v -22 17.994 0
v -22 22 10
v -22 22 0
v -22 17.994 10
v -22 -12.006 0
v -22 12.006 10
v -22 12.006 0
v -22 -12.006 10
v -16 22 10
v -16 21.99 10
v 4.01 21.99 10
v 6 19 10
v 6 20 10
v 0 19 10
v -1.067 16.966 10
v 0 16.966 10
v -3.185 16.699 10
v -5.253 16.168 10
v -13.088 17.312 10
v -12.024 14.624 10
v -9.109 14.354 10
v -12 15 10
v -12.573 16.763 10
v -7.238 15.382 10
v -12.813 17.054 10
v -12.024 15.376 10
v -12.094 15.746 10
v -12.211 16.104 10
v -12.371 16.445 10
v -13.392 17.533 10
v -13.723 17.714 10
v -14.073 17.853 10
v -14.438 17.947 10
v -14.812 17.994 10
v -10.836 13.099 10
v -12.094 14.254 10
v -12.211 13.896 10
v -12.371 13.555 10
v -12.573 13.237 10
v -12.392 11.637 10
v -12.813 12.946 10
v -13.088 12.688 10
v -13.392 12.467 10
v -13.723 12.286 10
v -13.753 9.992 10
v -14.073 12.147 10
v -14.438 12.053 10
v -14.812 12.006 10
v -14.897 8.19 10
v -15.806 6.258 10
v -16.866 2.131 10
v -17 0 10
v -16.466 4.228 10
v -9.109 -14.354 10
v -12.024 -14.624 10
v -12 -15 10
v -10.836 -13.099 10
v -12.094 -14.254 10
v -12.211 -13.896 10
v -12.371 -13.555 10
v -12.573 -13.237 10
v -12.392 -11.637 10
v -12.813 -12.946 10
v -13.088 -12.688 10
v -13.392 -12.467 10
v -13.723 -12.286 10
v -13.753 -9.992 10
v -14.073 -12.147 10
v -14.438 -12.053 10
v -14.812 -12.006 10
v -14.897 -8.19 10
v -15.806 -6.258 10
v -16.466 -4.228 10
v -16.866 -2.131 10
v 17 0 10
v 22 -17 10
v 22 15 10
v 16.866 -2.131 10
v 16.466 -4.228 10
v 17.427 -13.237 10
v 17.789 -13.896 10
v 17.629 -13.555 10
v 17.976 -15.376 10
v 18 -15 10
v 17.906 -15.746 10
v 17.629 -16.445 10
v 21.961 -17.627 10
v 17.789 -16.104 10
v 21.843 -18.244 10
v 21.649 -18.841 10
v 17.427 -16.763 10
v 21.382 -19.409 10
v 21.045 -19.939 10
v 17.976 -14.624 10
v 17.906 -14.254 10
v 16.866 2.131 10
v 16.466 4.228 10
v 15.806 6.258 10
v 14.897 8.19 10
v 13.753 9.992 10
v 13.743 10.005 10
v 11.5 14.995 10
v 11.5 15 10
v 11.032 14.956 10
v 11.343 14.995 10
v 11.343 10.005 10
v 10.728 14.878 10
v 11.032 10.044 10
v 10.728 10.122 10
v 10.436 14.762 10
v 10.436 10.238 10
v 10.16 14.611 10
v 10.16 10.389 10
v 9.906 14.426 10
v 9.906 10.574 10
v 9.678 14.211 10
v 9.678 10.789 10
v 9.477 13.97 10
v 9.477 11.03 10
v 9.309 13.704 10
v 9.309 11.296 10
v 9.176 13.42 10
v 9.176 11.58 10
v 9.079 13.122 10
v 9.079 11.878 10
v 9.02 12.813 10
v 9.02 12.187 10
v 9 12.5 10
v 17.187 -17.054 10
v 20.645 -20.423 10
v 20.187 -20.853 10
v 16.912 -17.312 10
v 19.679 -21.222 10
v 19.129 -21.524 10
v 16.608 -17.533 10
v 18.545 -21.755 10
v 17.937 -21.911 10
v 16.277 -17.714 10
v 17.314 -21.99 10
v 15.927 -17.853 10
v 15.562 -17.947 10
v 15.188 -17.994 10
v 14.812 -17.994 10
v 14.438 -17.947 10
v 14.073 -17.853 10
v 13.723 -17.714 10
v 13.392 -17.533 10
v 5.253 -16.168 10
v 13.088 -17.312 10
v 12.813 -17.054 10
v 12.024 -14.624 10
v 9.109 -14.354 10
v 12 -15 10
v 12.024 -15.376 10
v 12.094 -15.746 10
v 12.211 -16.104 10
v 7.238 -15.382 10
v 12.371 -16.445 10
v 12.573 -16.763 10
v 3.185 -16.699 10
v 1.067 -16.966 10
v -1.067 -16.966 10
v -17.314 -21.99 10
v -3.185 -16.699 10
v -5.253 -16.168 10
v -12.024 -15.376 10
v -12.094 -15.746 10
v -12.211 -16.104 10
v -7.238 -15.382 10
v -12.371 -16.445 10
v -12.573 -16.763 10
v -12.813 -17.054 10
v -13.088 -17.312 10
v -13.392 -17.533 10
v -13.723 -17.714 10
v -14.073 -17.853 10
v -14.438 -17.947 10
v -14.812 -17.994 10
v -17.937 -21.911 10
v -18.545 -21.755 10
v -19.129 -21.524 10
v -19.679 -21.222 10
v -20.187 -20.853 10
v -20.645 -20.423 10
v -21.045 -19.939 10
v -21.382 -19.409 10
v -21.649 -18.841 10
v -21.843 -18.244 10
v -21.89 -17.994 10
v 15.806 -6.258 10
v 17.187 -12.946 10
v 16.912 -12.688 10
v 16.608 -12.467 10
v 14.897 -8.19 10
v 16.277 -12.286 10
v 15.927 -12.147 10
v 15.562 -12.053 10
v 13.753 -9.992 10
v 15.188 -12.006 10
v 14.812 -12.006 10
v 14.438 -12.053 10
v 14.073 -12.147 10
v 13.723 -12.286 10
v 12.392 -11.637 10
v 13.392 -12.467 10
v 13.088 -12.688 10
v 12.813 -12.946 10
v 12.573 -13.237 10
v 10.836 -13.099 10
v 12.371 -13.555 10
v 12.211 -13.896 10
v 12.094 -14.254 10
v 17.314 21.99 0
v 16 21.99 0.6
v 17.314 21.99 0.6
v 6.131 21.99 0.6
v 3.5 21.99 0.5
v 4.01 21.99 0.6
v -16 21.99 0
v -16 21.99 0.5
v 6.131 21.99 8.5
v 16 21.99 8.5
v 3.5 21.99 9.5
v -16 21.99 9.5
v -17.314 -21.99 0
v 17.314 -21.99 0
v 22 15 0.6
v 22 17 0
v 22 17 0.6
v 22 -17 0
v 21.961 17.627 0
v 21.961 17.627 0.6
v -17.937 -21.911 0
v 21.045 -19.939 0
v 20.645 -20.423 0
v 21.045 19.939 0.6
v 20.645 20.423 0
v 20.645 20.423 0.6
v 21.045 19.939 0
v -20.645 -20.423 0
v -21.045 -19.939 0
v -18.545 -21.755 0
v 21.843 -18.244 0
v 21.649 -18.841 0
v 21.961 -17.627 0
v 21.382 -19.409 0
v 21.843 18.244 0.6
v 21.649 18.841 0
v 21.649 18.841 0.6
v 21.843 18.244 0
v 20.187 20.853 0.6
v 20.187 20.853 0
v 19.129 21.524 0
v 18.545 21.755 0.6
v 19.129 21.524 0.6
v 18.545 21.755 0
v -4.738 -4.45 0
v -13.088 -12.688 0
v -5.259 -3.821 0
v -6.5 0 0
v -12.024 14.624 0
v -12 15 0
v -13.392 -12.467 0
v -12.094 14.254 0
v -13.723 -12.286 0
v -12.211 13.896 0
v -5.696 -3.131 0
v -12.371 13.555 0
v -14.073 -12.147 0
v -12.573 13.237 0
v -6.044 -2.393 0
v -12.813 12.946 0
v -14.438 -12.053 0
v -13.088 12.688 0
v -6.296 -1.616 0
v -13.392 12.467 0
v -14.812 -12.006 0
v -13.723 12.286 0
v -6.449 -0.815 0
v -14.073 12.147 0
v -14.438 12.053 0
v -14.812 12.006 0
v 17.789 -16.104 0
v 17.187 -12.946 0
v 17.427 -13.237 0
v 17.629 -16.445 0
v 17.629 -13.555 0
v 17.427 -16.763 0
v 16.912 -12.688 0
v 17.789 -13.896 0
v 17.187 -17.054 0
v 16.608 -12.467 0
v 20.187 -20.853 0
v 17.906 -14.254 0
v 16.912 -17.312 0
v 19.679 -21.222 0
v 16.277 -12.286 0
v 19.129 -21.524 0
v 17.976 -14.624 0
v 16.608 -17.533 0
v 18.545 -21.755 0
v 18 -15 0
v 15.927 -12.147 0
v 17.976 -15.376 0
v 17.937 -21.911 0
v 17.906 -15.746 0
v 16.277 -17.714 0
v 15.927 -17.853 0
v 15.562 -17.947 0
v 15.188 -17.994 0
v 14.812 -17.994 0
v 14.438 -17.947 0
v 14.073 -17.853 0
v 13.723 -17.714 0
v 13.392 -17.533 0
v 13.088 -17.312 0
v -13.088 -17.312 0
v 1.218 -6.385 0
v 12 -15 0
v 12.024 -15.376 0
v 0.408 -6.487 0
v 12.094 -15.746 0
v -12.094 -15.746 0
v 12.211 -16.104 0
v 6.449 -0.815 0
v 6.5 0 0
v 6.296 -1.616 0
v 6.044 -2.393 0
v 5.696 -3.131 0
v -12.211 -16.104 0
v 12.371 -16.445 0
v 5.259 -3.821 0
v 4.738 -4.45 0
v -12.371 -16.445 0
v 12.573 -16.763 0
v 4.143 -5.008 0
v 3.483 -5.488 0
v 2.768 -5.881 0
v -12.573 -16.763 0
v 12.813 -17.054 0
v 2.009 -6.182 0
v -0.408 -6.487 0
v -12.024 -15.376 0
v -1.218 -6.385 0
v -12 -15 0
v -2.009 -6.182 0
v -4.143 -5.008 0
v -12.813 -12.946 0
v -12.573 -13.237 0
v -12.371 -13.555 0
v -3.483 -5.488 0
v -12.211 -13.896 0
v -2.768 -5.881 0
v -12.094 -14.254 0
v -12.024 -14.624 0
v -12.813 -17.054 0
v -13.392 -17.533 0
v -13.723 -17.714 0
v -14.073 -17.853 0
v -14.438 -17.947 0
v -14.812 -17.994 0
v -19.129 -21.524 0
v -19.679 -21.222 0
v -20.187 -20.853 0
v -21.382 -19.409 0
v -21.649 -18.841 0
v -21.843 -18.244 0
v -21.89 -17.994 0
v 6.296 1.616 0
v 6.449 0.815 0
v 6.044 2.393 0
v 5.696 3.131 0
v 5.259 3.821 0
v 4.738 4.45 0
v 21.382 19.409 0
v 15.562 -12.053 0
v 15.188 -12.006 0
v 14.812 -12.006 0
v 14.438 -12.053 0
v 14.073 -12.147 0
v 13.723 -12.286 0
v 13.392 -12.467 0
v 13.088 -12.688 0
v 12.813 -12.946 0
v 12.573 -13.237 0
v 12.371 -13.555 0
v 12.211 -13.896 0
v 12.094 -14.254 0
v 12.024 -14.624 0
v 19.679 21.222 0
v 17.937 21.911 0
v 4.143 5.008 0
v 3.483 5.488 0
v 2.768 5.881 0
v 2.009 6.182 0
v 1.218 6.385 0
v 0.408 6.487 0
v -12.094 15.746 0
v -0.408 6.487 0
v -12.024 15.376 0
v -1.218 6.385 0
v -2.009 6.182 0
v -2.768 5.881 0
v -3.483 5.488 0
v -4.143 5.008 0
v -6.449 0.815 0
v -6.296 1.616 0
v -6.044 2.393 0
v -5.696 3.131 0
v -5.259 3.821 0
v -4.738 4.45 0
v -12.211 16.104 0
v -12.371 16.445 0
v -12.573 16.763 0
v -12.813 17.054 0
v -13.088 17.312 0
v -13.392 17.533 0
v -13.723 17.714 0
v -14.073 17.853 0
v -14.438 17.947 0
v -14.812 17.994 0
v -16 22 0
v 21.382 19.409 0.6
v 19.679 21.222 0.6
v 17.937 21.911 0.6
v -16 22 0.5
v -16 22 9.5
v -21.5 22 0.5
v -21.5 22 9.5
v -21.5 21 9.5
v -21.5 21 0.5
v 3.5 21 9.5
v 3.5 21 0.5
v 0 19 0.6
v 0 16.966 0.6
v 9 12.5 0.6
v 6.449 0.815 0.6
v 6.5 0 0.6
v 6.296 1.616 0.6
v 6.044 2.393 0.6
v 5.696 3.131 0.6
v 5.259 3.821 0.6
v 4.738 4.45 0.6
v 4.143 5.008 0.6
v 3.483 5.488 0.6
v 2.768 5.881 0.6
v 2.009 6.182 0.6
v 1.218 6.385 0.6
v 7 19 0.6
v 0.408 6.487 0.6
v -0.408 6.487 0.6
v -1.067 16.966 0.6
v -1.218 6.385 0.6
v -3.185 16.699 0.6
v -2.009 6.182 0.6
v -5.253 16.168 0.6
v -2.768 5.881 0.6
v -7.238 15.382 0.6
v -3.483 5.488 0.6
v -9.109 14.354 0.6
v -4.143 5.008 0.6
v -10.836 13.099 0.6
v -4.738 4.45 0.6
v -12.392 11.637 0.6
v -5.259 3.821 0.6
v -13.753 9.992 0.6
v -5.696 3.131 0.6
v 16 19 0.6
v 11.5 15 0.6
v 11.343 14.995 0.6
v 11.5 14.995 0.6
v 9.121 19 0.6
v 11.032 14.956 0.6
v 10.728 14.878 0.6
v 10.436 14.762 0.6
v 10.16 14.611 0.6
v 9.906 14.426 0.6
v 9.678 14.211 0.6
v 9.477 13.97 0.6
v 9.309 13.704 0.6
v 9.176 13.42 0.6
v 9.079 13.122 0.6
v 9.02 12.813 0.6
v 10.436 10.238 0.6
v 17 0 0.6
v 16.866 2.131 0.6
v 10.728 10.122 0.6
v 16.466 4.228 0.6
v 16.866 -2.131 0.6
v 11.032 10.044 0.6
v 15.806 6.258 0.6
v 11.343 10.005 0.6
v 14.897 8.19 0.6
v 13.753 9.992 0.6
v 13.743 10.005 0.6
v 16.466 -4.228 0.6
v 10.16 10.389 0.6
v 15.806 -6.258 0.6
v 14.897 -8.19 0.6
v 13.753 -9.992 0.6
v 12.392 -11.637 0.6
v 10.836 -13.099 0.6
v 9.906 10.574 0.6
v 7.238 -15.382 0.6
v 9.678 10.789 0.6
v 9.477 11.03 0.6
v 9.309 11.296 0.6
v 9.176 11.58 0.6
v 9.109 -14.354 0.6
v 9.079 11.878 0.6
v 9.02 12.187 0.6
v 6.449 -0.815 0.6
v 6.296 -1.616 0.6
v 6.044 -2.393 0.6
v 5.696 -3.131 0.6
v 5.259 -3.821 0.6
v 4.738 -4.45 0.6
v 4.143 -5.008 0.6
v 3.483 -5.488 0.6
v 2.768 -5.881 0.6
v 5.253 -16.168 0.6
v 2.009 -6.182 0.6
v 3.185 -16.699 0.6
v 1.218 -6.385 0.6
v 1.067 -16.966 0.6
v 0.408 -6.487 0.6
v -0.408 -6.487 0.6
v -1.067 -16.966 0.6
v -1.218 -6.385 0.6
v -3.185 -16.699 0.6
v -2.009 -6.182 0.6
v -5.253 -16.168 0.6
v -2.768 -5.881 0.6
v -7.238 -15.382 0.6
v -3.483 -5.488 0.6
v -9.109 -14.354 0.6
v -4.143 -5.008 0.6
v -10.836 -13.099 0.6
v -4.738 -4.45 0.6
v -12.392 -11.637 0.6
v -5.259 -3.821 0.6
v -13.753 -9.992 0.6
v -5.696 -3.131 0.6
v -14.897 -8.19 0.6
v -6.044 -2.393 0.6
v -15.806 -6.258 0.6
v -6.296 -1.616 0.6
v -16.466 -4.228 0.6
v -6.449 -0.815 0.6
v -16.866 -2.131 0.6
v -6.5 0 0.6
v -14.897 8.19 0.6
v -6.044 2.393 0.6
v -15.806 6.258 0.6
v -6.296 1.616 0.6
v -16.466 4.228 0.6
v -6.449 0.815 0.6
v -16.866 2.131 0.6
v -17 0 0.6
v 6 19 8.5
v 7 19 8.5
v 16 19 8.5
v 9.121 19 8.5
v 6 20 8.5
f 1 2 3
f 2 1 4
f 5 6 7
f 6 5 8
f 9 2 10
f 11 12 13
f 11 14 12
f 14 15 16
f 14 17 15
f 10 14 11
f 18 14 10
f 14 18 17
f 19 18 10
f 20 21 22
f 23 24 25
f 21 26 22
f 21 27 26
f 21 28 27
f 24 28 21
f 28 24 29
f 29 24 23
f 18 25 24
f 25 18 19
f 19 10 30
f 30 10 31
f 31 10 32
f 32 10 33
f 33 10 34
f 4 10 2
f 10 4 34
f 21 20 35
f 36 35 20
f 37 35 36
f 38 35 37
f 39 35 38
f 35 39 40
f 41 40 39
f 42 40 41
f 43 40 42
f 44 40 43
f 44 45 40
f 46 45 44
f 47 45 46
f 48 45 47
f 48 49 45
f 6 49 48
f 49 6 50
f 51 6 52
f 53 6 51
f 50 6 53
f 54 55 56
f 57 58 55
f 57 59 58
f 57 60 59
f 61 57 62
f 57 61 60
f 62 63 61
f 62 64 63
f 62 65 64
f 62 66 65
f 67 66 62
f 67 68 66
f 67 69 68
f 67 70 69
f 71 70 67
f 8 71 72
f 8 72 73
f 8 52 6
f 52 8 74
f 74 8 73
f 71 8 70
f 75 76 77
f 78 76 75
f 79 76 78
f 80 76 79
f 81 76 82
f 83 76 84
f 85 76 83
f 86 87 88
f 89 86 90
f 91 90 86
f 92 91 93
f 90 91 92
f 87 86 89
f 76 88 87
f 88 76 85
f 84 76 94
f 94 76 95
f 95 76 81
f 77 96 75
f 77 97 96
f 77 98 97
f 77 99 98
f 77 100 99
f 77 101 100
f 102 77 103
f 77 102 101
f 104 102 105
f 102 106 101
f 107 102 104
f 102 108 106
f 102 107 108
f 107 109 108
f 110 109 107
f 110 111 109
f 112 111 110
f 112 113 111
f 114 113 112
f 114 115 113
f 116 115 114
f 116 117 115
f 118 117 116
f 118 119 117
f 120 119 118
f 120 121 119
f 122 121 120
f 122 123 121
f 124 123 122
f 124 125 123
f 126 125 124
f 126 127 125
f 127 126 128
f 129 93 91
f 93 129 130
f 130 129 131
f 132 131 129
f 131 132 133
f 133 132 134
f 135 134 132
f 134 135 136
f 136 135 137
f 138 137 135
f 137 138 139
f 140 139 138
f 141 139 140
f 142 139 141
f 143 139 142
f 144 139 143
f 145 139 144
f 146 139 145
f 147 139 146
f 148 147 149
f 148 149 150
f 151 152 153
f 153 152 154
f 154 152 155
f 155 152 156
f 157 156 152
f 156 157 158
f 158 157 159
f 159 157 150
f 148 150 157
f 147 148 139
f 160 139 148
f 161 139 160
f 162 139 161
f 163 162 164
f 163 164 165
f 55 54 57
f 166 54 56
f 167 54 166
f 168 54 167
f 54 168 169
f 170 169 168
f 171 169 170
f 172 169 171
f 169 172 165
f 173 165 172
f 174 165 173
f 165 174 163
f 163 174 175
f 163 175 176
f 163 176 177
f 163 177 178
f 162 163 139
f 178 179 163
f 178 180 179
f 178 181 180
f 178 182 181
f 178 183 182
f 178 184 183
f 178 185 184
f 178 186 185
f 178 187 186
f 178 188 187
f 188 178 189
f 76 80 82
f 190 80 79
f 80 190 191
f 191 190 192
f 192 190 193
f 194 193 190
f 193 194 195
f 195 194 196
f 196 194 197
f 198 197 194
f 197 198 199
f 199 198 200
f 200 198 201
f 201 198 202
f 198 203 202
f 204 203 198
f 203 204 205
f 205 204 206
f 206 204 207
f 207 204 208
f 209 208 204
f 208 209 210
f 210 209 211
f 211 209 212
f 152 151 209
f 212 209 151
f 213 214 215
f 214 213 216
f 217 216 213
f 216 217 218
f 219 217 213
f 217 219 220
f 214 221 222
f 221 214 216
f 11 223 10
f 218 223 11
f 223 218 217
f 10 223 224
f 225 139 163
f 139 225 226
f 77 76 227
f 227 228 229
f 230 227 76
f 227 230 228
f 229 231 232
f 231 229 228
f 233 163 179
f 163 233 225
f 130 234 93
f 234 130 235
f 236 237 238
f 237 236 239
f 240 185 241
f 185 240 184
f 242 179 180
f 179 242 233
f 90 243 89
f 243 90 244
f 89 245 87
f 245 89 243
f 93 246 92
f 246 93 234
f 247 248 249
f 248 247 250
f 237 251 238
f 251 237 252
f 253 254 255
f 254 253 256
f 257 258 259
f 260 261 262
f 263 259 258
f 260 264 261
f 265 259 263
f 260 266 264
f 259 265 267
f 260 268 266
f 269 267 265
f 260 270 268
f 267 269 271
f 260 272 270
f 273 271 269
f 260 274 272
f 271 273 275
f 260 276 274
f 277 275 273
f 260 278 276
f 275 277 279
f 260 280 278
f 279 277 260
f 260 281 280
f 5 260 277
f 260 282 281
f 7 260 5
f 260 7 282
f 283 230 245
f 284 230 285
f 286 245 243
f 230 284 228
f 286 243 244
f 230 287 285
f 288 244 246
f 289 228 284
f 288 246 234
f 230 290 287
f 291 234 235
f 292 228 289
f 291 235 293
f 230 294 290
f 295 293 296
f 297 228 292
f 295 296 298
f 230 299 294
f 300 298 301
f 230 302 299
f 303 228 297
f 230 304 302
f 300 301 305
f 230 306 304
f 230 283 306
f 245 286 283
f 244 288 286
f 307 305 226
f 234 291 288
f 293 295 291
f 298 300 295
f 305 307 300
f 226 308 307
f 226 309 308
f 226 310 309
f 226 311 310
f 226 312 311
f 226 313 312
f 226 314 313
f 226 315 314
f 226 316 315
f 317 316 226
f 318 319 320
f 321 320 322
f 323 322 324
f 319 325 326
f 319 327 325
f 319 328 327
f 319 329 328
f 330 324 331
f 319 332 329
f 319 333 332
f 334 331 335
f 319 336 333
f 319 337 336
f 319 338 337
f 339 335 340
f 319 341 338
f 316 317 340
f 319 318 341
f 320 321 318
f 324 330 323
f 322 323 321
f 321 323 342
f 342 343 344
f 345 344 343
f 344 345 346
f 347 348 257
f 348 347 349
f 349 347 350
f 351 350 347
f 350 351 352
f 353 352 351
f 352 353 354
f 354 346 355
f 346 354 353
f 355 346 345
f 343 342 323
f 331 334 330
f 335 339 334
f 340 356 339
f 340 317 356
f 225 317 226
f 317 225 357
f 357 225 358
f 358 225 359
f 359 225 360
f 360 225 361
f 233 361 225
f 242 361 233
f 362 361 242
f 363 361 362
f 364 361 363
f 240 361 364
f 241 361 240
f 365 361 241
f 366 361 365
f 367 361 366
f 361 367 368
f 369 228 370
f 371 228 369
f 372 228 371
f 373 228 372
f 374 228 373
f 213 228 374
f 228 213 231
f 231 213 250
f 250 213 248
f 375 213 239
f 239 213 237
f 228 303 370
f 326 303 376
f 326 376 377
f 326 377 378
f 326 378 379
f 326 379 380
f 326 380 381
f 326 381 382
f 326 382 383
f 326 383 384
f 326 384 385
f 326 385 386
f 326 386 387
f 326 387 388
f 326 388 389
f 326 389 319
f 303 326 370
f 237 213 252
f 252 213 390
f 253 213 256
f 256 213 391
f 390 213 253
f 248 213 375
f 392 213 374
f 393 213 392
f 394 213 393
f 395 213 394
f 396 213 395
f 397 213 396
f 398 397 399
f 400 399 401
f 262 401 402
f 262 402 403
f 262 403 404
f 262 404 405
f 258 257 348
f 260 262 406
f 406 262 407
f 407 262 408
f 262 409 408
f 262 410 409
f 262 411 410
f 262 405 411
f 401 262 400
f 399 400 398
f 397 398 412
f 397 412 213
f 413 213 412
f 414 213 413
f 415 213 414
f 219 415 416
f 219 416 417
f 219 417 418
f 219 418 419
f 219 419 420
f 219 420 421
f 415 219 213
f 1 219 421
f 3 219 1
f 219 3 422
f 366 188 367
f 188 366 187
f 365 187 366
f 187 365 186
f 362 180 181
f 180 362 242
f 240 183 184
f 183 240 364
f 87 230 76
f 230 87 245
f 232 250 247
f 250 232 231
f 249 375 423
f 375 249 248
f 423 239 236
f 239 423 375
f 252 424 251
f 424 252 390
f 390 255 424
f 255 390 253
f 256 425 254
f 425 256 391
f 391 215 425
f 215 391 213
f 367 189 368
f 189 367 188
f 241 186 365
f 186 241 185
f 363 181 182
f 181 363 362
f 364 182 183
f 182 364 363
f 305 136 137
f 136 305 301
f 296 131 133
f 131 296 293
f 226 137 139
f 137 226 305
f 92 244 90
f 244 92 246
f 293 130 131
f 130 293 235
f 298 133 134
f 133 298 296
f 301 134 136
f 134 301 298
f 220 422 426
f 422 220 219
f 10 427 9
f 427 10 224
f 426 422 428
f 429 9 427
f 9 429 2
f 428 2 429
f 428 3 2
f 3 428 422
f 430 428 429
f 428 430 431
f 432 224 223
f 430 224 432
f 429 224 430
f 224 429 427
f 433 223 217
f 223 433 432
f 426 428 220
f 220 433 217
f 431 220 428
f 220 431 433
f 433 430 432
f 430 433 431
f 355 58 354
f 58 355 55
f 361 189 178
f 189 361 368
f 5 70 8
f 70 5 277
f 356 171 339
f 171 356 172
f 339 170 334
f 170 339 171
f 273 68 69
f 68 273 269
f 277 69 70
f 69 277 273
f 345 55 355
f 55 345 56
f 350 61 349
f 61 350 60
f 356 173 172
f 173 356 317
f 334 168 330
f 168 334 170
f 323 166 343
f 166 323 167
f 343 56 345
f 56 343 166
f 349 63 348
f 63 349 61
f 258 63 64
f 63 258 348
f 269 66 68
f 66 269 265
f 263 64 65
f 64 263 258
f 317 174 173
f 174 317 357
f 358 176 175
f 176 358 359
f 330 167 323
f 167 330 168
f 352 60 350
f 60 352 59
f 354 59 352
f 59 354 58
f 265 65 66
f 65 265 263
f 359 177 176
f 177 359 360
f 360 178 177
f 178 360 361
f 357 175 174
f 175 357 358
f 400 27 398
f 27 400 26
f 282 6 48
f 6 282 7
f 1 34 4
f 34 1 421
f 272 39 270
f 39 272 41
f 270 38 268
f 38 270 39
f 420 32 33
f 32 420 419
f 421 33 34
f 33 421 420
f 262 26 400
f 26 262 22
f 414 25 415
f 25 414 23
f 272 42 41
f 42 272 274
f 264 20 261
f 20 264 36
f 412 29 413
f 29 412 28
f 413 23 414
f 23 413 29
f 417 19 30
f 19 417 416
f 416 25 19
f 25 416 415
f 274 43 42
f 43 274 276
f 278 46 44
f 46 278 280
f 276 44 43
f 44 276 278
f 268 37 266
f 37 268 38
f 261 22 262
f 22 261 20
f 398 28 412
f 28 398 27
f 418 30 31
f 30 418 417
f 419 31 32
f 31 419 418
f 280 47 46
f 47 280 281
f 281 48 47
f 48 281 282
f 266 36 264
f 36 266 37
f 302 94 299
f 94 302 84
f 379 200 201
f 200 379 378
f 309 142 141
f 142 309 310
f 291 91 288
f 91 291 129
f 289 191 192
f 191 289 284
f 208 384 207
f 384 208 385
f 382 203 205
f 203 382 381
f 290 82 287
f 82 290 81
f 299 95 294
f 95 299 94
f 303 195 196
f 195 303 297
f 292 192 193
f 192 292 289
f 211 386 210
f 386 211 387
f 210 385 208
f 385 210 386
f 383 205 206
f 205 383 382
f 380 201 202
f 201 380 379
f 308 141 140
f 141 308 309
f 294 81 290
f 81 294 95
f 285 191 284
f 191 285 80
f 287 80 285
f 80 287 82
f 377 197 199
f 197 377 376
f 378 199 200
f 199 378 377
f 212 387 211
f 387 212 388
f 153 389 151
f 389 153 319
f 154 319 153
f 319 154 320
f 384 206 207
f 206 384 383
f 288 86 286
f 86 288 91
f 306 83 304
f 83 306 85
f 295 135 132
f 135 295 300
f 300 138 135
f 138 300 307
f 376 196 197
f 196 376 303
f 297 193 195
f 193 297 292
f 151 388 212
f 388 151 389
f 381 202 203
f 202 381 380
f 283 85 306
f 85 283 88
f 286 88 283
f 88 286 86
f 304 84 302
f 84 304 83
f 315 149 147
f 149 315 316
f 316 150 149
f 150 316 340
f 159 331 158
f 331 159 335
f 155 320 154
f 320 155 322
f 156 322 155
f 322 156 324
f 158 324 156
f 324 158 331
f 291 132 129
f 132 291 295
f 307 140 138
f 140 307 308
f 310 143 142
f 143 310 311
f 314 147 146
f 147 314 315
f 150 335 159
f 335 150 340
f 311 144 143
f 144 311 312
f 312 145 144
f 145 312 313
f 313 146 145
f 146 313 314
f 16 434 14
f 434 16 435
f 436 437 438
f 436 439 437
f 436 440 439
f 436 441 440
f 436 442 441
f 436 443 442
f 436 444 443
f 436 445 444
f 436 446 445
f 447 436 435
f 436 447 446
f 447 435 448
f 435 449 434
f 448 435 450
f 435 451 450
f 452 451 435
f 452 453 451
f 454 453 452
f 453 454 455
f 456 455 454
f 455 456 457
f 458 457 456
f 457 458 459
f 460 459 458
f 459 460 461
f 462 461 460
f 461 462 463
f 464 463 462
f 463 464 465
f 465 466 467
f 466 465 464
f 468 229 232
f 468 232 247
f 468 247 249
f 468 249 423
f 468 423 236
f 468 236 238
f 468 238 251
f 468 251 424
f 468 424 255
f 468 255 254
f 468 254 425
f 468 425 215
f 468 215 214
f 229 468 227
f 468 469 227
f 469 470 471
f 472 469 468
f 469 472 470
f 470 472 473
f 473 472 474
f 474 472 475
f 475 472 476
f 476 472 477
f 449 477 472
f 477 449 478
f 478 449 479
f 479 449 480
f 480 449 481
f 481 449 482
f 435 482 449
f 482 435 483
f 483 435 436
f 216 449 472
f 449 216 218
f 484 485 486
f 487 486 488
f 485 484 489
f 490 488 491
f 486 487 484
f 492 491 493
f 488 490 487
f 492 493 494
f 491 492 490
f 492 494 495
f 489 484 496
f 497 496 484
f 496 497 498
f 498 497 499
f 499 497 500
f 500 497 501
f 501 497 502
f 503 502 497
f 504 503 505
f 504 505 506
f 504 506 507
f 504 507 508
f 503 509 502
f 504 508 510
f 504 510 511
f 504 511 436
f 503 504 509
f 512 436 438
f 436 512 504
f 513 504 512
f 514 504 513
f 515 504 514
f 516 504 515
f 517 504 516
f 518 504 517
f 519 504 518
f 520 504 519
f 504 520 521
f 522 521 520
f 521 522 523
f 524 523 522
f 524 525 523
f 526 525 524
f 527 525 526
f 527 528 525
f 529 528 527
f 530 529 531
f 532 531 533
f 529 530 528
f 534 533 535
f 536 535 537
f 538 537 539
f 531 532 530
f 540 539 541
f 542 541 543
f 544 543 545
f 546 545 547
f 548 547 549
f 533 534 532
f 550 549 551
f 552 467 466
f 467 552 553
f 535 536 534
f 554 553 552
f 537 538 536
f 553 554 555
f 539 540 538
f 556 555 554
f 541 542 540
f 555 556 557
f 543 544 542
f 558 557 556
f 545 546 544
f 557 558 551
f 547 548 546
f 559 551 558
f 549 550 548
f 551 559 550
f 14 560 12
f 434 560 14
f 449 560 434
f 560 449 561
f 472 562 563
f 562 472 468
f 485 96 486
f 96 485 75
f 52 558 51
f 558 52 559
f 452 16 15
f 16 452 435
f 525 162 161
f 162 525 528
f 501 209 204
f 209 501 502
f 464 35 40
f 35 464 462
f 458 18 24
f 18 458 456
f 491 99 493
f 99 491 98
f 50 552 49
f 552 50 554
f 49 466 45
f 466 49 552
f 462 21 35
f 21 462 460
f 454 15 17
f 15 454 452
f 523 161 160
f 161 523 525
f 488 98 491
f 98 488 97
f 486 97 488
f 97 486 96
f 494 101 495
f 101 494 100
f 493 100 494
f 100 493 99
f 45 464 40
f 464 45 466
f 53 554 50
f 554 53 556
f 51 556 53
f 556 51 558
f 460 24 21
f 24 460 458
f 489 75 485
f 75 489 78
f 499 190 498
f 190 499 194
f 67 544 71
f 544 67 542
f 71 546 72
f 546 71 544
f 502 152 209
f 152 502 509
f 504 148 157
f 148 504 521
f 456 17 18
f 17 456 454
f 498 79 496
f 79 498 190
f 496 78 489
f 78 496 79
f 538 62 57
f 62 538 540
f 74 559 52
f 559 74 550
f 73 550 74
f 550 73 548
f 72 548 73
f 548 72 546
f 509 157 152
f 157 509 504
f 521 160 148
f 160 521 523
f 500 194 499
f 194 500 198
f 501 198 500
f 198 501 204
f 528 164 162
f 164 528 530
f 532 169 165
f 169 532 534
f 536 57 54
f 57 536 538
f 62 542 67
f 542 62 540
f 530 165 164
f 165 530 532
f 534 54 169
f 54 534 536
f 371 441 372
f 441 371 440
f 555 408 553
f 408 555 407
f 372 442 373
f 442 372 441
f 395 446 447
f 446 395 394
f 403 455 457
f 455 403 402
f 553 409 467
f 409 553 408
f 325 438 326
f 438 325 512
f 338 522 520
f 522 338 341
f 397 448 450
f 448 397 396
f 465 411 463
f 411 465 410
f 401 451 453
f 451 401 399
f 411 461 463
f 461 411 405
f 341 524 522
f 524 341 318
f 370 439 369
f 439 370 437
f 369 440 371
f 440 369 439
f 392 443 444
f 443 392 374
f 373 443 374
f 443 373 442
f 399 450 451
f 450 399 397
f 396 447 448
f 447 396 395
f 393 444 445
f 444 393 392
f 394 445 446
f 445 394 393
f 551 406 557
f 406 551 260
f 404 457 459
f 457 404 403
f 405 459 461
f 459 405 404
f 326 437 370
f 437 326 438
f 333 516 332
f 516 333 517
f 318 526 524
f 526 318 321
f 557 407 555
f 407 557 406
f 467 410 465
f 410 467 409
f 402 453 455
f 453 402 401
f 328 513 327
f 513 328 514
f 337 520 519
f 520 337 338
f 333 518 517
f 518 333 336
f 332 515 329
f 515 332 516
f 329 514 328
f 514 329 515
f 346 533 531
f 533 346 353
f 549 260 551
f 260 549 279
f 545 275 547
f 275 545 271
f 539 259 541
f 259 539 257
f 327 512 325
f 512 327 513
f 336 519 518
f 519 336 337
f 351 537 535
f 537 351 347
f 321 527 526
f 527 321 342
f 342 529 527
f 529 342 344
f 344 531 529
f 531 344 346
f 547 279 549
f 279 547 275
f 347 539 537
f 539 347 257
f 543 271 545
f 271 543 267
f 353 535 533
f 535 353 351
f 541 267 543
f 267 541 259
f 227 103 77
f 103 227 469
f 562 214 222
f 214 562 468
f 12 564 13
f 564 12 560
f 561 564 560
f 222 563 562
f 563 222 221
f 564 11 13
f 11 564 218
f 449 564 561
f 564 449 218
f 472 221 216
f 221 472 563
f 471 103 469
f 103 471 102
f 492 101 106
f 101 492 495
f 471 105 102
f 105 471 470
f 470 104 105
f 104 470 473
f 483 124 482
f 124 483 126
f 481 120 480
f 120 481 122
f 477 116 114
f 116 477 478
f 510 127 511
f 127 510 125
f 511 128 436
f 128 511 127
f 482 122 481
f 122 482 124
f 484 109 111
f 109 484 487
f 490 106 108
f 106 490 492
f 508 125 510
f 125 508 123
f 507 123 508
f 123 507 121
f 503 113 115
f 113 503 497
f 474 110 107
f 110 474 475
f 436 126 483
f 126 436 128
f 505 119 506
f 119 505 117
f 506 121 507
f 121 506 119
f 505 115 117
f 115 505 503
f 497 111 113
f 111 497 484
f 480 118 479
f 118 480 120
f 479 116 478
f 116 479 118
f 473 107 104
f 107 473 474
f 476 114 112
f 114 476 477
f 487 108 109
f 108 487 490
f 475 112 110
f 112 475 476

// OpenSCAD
$fn = 50;


union() {
	difference() {
		union() {
			translate(v = [0, 0, 0]) {
				rotate(a = [0, 0, 0]) {
					hull() {
						translate(v = [-17.0000000000, 17.0000000000, 0]) {
							rotate(a = [0, 0, 0]) {
								translate(v = [0, 0, 0]) {
									rotate(a = [0, 0, 0]) {
										cylinder(h = 10, r = 5);
									}
								}
							}
						}
						translate(v = [17.0000000000, 17.0000000000, 0]) {
							rotate(a = [0, 0, 0]) {
								translate(v = [0, 0, 0]) {
									rotate(a = [0, 0, 0]) {
										cylinder(h = 10, r = 5);
									}
								}
							}
						}
						translate(v = [-17.0000000000, -17.0000000000, 0]) {
							rotate(a = [0, 0, 0]) {
								translate(v = [0, 0, 0]) {
									rotate(a = [0, 0, 0]) {
										cylinder(h = 10, r = 5);
									}
								}
							}
						}
						translate(v = [17.0000000000, -17.0000000000, 0]) {
							rotate(a = [0, 0, 0]) {
								translate(v = [0, 0, 0]) {
									rotate(a = [0, 0, 0]) {
										cylinder(h = 10, r = 5);
									}
								}
							}
						}
					}
				}
			}
			translate(v = [-22.0000000000, 16.0000000000, 0]) {
				rotate(a = [0, 0, 0]) {
					cube(size = [6, 6, 10]);
				}
			}
		}
		union() {
			#translate(v = [-21.5000000000, 21.0000000000, 0.5000000000]) {
				rotate(a = [0, 0, 0]) {
					cube(size = [25, 1, 9.0000000000]);
				}
			}
			translate(v = [-22.5000000000, -15.0000000000, -125]) {
				rotate(a = [0, 0, 0]) {
					hull() {
						translate(v = [7.5000000000, 0, 0]) {
							rotate(a = [0, 0, 0]) {
								translate(v = [0, 0, 0]) {
									rotate(a = [0, 0, 0]) {
										cylinder(h = 250, r = 3.0000000000);
									}
								}
							}
						}
						translate(v = [-7.5000000000, 0, 0]) {
							rotate(a = [0, 0, 0]) {
								translate(v = [0, 0, 0]) {
									rotate(a = [0, 0, 0]) {
										cylinder(h = 250, r = 3.0000000000);
									}
								}
							}
						}
					}
				}
			}
			translate(v = [-22.5000000000, 15.0000000000, -125]) {
				rotate(a = [0, 0, 0]) {
					hull() {
						translate(v = [7.5000000000, 0, 0]) {
							rotate(a = [0, 0, 0]) {
								translate(v = [0, 0, 0]) {
									rotate(a = [0, 0, 0]) {
										cylinder(h = 250, r = 3.0000000000);
									}
								}
							}
						}
						translate(v = [-7.5000000000, 0, 0]) {
							rotate(a = [0, 0, 0]) {
								translate(v = [0, 0, 0]) {
									rotate(a = [0, 0, 0]) {
										cylinder(h = 250, r = 3.0000000000);
									}
								}
							}
						}
					}
				}
			}
			translate(v = [15.0000000000, -15.0000000000, -125.0000000000]) {
				rotate(a = [0, 0, 0]) {
					cylinder(h = 250, r = 3.0000000000);
				}
			}
			translate(v = [0.0000000000, 11.0000000000, 0.6000000000]) {
				rotate(a = [0, 0, 0]) {
					cube(size = [11, 8, 12.4000000000]);
				}
			}
			translate(v = [0, 0, 0.6000000000]) {
				rotate(a = [0, 0, 0]) {
					cylinder(h = 12.4000000000, r = 17.0000000000);
				}
			}
			translate(v = [0, 0, -5.0000000000]) {
				rotate(a = [0, 0, 0]) {
					cylinder(h = 10, r = 6.5000000000);
				}
			}
			translate(v = [0.0000000000, 15.0000000000, 0.6000000000]) {
				rotate(a = [0, 0, 0]) {
					cube(size = [22.0000000000, 4, 12.4000000000]);
				}
			}
			translate(v = [16.0000000000, 15.0000000000, 0.6000000000]) {
				rotate(a = [0, 0, 0]) {
					cube(size = [6, 7, 12.4000000000]);
				}
			}
			translate(v = [6.0000000000, 15.0000000000, 8.5000000000]) {
				rotate(a = [0, 0, 0]) {
					cube(size = [16, 7, 1.5000000000]);
				}
			}
			translate(v = [3.2500000000, 22.7500000000, 0.6000000000]) {
				rotate(a = [0, 0, -45]) {
					cube(size = [7.5000000000, 1.5000000000, 12.4000000000]);
				}
			}
			translate(v = [2.5000000000, 10.0000000000, 0.6000000000]) {
				rotate(a = [0, 0, 0]) {
					cube(size = [9.0000000000, 5, 9.4000000000]);
				}
			}
		}
	}
	union() {
		translate(v = [14, 12.5000000000, 0]) {
			rotate(a = [0, 0, 0]) {
				hull() {
					translate(v = [2.5000000000, 0, 0]) {
						rotate(a = [0, 0, 0]) {
							#translate(v = [0, 0, 0]) {
								rotate(a = [0, 0, 0]) {
									cylinder(h = 10, r = 2.5000000000);
								}
							}
						}
					}
					translate(v = [-2.5000000000, 0, 0]) {
						rotate(a = [0, 0, 0]) {
							#translate(v = [0, 0, 0]) {
								rotate(a = [0, 0, 0]) {
									cylinder(h = 10, r = 2.5000000000);
								}
							}
						}
					}
				}
			}
		}
	}
}
